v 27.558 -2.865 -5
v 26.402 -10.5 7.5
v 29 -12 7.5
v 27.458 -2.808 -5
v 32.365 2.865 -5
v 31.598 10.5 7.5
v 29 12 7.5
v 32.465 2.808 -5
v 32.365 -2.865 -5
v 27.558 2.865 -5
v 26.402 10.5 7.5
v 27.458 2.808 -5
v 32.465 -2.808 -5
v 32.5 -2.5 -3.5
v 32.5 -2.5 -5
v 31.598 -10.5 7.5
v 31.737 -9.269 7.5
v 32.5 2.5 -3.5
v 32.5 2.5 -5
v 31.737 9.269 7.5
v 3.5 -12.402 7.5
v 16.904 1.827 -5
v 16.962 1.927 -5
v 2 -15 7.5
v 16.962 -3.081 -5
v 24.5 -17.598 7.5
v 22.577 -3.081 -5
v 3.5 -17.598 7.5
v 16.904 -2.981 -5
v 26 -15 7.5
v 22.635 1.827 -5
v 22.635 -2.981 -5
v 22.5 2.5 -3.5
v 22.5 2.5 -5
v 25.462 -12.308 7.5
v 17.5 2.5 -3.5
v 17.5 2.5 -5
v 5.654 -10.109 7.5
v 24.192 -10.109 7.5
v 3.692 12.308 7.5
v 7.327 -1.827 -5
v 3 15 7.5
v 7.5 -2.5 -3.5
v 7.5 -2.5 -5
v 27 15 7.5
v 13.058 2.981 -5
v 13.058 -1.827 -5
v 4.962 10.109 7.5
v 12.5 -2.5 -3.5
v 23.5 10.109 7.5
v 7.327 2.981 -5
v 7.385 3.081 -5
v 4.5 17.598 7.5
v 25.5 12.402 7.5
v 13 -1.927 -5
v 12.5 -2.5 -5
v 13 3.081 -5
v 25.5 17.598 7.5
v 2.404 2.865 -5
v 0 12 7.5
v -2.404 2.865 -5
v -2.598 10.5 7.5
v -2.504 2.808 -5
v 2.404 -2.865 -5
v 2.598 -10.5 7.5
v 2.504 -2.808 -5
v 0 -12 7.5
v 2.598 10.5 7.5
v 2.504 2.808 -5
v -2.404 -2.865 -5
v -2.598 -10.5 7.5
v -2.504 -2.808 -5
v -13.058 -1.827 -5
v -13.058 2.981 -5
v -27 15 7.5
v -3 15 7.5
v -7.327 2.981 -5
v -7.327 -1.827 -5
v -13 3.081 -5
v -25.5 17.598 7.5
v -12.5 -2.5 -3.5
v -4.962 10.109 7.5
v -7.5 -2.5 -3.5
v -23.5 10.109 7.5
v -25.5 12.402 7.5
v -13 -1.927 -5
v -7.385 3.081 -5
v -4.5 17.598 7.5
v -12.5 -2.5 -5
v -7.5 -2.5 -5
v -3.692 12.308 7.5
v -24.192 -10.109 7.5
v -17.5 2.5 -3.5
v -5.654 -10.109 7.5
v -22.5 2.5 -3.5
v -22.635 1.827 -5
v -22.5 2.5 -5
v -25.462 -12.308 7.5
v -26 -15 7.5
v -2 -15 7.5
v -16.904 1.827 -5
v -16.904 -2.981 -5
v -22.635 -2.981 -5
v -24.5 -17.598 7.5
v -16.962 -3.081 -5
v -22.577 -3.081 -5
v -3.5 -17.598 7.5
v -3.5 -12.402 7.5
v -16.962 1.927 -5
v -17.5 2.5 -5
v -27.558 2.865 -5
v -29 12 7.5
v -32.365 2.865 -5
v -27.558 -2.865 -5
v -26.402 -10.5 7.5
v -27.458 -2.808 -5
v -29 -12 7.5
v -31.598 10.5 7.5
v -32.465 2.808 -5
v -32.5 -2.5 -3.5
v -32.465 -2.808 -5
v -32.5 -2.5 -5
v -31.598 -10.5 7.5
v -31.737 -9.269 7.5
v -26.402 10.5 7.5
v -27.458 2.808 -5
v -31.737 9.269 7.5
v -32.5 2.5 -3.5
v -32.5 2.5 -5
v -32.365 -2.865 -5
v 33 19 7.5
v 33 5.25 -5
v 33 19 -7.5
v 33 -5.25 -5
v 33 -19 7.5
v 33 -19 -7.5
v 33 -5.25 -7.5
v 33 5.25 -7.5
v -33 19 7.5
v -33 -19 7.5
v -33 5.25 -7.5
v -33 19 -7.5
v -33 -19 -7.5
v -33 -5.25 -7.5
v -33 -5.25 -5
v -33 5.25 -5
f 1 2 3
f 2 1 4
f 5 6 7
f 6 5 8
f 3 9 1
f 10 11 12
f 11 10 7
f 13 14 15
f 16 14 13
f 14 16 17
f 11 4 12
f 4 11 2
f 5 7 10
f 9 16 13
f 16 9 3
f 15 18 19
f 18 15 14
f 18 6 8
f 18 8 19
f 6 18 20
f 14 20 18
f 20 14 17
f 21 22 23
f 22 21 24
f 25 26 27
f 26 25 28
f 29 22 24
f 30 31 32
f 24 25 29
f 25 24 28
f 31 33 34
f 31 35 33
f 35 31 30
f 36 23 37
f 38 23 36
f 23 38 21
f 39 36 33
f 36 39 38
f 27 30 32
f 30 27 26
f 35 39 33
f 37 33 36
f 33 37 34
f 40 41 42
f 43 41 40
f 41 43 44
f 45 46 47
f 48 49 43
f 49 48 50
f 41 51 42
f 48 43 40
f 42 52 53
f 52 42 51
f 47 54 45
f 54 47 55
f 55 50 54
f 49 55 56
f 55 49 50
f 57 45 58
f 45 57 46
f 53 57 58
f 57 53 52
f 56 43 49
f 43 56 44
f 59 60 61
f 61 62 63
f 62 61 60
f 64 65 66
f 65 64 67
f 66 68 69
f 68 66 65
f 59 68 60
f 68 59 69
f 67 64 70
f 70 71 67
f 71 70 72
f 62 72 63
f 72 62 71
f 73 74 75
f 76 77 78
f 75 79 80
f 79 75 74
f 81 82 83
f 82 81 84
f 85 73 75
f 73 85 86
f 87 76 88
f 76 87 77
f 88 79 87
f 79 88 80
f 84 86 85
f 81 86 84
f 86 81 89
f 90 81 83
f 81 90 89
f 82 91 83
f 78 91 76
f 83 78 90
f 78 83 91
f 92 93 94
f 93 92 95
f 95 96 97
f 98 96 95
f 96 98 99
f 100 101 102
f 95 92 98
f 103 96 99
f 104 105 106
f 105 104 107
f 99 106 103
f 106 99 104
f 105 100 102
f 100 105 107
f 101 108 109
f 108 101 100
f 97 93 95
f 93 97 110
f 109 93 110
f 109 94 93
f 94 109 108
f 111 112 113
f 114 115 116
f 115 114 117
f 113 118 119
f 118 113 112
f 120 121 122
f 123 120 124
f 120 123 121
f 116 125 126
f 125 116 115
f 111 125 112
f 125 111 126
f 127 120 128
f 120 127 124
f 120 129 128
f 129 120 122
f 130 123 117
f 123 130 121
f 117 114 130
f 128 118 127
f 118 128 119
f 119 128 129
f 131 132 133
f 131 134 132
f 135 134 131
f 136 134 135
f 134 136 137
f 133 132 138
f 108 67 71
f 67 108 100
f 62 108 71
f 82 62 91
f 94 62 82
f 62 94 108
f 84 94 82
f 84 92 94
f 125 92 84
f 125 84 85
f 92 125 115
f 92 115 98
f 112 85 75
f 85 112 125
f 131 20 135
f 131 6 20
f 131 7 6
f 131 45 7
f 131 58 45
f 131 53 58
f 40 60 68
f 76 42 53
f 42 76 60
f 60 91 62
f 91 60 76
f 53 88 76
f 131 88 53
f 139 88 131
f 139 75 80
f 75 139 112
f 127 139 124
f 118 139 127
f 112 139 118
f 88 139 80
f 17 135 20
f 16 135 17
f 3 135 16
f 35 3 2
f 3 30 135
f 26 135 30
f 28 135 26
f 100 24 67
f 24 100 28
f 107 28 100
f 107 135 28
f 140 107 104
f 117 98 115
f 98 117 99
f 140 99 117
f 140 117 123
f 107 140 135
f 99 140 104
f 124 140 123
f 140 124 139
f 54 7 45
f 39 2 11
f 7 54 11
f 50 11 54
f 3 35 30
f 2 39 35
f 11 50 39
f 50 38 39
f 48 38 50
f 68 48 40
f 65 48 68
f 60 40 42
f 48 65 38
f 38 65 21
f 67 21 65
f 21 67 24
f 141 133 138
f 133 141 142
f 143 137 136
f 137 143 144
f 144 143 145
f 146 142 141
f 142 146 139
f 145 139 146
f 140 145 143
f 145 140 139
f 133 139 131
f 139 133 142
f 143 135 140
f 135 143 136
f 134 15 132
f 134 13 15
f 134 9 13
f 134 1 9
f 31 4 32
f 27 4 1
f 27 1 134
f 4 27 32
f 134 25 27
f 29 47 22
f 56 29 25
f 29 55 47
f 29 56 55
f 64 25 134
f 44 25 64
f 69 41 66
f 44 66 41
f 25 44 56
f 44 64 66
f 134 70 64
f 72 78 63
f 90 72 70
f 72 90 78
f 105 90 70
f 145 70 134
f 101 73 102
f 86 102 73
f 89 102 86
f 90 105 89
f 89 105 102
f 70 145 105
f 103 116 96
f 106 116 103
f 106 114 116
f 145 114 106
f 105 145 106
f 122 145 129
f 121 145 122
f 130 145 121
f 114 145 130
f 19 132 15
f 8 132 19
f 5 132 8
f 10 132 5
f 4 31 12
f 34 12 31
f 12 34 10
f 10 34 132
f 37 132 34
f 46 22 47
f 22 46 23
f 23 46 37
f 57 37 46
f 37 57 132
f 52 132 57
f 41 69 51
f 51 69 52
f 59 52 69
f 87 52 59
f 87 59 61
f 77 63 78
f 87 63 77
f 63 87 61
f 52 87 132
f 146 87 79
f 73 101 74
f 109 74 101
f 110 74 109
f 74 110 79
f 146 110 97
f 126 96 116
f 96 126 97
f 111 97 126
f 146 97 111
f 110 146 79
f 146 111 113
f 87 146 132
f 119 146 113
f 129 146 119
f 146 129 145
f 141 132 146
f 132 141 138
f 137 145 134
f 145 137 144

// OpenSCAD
// WS2812 LED Strip Parameters - verified measurements
led_spacing = 10;      // 10mm between LED centers
strip_width = 10;      // 10mm wide LED strip
strip_height = 2;      // Keep same
tolerance = 0.5;       // Keep same
led_size = 5;         // 5mm square LED cutouts

// Updated Base Parameters
base_width = 66;      // Optimized smaller base
base_length = 38;     // Adjusted proportionally
base_height = 15;     // Increased by 25% from 25mm

// Updated 7-Segment Display Parameters
segment_h_length = 24;    // Increased horizontal length for wider number
segment_width = 6;        // Keep wider segments

// Add diffuser parameters
diffuser_height = 1;

// Define LED positions globally
led1 = [0, -3.0 * led_spacing];  // LED1
led2 = [0,-2.0 * led_spacing];  // LED2
led3 = [0,-1.0 * led_spacing];  // LED3
led4 = [0,0.0 * led_spacing];   // LED4 - Center LED
led5 = [0,1.0 * led_spacing];   // LED5
led6 = [0,2.0 * led_spacing];   // LED6
led7 = [0,3.0 * led_spacing];   // LED7

// Define segment positions globally - Wide and squished
seg_f = [-15, 14];     // F (top left vertical) - moved outward
seg_e = [-15, -14];    // E (bottom left vertical) - moved outward
seg_a = [0, 29];      // A (top horizontal) - same height
seg_g = [0, 0];       // G (middle horizontal) - unchanged
seg_b = [15, 15];      // B (top right vertical) - moved closer
seg_c = [15, -15];     // C (bottom right vertical) - moved closer
seg_d = [0, -29];     // D (bottom horizontal) - moved closer

// LED Strip Channel with wire channels - centered
module led_channel() {
    // Main channel exactly 10mm wide plus tolerance
    translate([-base_width/2 , -strip_width/2 - tolerance/2, -base_height/2])
        cube([base_width, strip_width + tolerance, strip_height + tolerance]);
}

// Single light pipe cavity with elongating shape
module light_cavity(led_pos, segment_pos, is_horizontal=false) {
    // Calculate heights for better progression
    z_bottom = -base_height/2 + strip_height;
    z_top = base_height/2;
    total_height = z_top - z_bottom;
    
    hull() {
        // Bottom (at LED) - small square
        translate([led_pos[0] - led_size/2, led_pos[1] - led_size/2, z_bottom])
            cube([led_size, led_size, 2]);
     
            
        // Top (at segment) - full segment shape
        translate([segment_pos[0], segment_pos[1], z_top ]) {
            rotate([0, 0, is_horizontal ? 0 : 90])
                linear_extrude(height=2)
                    segment(segment_h_length, segment_width);
        }
    }
    
}

// All light cavities with corrected segment positions and mirroring
module all_cavities(visualization=false) {
    
    rotate([0, 0, 90]) {
        // Light paths
        light_cavity(led1, seg_d, true);   // LED1 → F (vertical)
        light_cavity(led2, seg_e, false);   // LED2 → E (vertical)
        light_cavity(led3, seg_c, false);    // LED3 → A (horizontal)
        light_cavity(led4, seg_g, true);    // LED4 → G (horizontal)
        light_cavity(led5, seg_b, false);   // LED5 → B (vertical)
        light_cavity(led6, seg_f, false);   // LED6 → C (vertical)
        light_cavity(led7, seg_a, true);    // LED6 → D (horizontal)
    }
}

// Base with LED channel, cavities, 
module base() {
    difference() {
        // Main block
        cube([base_width, base_length, base_height], center=true);             
        // LED channel
        led_channel();
        // Light pipe cavities
        all_cavities(false);  // Use same paths for actual cavities
    }
}

module segment(length, width) {
    // Elongated hexagonal shape
    hull() {
        translate([-length/2 + width/2, 0, 0]) 
            circle(d=width, $fn=6);
        translate([length/2 - width/2, 0, 0])  
            circle(d=width, $fn=6);
    }
}

// Diffuser layer module
module diffuser_layer() {
    translate([0, 0, base_height/2 - .5])  // Changed to sit directly on base
        cube([base_width, base_length, diffuser_height], center=true);
}

// // Render just the paths in red with slight transparency
// //all_cavities(true);  // Show paths
// union() {
//    base();
// //    diffuser_layer();
// }
   
// New module for the intersection shape
module intersection_layer() {
        color("Red", alpha=0.9)  // Semi-transparent to visualize

        intersection() {
            all_cavities(true);
            diffuser_layer();
        };
    } 

// union(){
// Replace the final union() with:
//intersection_layer();
base();
// }
